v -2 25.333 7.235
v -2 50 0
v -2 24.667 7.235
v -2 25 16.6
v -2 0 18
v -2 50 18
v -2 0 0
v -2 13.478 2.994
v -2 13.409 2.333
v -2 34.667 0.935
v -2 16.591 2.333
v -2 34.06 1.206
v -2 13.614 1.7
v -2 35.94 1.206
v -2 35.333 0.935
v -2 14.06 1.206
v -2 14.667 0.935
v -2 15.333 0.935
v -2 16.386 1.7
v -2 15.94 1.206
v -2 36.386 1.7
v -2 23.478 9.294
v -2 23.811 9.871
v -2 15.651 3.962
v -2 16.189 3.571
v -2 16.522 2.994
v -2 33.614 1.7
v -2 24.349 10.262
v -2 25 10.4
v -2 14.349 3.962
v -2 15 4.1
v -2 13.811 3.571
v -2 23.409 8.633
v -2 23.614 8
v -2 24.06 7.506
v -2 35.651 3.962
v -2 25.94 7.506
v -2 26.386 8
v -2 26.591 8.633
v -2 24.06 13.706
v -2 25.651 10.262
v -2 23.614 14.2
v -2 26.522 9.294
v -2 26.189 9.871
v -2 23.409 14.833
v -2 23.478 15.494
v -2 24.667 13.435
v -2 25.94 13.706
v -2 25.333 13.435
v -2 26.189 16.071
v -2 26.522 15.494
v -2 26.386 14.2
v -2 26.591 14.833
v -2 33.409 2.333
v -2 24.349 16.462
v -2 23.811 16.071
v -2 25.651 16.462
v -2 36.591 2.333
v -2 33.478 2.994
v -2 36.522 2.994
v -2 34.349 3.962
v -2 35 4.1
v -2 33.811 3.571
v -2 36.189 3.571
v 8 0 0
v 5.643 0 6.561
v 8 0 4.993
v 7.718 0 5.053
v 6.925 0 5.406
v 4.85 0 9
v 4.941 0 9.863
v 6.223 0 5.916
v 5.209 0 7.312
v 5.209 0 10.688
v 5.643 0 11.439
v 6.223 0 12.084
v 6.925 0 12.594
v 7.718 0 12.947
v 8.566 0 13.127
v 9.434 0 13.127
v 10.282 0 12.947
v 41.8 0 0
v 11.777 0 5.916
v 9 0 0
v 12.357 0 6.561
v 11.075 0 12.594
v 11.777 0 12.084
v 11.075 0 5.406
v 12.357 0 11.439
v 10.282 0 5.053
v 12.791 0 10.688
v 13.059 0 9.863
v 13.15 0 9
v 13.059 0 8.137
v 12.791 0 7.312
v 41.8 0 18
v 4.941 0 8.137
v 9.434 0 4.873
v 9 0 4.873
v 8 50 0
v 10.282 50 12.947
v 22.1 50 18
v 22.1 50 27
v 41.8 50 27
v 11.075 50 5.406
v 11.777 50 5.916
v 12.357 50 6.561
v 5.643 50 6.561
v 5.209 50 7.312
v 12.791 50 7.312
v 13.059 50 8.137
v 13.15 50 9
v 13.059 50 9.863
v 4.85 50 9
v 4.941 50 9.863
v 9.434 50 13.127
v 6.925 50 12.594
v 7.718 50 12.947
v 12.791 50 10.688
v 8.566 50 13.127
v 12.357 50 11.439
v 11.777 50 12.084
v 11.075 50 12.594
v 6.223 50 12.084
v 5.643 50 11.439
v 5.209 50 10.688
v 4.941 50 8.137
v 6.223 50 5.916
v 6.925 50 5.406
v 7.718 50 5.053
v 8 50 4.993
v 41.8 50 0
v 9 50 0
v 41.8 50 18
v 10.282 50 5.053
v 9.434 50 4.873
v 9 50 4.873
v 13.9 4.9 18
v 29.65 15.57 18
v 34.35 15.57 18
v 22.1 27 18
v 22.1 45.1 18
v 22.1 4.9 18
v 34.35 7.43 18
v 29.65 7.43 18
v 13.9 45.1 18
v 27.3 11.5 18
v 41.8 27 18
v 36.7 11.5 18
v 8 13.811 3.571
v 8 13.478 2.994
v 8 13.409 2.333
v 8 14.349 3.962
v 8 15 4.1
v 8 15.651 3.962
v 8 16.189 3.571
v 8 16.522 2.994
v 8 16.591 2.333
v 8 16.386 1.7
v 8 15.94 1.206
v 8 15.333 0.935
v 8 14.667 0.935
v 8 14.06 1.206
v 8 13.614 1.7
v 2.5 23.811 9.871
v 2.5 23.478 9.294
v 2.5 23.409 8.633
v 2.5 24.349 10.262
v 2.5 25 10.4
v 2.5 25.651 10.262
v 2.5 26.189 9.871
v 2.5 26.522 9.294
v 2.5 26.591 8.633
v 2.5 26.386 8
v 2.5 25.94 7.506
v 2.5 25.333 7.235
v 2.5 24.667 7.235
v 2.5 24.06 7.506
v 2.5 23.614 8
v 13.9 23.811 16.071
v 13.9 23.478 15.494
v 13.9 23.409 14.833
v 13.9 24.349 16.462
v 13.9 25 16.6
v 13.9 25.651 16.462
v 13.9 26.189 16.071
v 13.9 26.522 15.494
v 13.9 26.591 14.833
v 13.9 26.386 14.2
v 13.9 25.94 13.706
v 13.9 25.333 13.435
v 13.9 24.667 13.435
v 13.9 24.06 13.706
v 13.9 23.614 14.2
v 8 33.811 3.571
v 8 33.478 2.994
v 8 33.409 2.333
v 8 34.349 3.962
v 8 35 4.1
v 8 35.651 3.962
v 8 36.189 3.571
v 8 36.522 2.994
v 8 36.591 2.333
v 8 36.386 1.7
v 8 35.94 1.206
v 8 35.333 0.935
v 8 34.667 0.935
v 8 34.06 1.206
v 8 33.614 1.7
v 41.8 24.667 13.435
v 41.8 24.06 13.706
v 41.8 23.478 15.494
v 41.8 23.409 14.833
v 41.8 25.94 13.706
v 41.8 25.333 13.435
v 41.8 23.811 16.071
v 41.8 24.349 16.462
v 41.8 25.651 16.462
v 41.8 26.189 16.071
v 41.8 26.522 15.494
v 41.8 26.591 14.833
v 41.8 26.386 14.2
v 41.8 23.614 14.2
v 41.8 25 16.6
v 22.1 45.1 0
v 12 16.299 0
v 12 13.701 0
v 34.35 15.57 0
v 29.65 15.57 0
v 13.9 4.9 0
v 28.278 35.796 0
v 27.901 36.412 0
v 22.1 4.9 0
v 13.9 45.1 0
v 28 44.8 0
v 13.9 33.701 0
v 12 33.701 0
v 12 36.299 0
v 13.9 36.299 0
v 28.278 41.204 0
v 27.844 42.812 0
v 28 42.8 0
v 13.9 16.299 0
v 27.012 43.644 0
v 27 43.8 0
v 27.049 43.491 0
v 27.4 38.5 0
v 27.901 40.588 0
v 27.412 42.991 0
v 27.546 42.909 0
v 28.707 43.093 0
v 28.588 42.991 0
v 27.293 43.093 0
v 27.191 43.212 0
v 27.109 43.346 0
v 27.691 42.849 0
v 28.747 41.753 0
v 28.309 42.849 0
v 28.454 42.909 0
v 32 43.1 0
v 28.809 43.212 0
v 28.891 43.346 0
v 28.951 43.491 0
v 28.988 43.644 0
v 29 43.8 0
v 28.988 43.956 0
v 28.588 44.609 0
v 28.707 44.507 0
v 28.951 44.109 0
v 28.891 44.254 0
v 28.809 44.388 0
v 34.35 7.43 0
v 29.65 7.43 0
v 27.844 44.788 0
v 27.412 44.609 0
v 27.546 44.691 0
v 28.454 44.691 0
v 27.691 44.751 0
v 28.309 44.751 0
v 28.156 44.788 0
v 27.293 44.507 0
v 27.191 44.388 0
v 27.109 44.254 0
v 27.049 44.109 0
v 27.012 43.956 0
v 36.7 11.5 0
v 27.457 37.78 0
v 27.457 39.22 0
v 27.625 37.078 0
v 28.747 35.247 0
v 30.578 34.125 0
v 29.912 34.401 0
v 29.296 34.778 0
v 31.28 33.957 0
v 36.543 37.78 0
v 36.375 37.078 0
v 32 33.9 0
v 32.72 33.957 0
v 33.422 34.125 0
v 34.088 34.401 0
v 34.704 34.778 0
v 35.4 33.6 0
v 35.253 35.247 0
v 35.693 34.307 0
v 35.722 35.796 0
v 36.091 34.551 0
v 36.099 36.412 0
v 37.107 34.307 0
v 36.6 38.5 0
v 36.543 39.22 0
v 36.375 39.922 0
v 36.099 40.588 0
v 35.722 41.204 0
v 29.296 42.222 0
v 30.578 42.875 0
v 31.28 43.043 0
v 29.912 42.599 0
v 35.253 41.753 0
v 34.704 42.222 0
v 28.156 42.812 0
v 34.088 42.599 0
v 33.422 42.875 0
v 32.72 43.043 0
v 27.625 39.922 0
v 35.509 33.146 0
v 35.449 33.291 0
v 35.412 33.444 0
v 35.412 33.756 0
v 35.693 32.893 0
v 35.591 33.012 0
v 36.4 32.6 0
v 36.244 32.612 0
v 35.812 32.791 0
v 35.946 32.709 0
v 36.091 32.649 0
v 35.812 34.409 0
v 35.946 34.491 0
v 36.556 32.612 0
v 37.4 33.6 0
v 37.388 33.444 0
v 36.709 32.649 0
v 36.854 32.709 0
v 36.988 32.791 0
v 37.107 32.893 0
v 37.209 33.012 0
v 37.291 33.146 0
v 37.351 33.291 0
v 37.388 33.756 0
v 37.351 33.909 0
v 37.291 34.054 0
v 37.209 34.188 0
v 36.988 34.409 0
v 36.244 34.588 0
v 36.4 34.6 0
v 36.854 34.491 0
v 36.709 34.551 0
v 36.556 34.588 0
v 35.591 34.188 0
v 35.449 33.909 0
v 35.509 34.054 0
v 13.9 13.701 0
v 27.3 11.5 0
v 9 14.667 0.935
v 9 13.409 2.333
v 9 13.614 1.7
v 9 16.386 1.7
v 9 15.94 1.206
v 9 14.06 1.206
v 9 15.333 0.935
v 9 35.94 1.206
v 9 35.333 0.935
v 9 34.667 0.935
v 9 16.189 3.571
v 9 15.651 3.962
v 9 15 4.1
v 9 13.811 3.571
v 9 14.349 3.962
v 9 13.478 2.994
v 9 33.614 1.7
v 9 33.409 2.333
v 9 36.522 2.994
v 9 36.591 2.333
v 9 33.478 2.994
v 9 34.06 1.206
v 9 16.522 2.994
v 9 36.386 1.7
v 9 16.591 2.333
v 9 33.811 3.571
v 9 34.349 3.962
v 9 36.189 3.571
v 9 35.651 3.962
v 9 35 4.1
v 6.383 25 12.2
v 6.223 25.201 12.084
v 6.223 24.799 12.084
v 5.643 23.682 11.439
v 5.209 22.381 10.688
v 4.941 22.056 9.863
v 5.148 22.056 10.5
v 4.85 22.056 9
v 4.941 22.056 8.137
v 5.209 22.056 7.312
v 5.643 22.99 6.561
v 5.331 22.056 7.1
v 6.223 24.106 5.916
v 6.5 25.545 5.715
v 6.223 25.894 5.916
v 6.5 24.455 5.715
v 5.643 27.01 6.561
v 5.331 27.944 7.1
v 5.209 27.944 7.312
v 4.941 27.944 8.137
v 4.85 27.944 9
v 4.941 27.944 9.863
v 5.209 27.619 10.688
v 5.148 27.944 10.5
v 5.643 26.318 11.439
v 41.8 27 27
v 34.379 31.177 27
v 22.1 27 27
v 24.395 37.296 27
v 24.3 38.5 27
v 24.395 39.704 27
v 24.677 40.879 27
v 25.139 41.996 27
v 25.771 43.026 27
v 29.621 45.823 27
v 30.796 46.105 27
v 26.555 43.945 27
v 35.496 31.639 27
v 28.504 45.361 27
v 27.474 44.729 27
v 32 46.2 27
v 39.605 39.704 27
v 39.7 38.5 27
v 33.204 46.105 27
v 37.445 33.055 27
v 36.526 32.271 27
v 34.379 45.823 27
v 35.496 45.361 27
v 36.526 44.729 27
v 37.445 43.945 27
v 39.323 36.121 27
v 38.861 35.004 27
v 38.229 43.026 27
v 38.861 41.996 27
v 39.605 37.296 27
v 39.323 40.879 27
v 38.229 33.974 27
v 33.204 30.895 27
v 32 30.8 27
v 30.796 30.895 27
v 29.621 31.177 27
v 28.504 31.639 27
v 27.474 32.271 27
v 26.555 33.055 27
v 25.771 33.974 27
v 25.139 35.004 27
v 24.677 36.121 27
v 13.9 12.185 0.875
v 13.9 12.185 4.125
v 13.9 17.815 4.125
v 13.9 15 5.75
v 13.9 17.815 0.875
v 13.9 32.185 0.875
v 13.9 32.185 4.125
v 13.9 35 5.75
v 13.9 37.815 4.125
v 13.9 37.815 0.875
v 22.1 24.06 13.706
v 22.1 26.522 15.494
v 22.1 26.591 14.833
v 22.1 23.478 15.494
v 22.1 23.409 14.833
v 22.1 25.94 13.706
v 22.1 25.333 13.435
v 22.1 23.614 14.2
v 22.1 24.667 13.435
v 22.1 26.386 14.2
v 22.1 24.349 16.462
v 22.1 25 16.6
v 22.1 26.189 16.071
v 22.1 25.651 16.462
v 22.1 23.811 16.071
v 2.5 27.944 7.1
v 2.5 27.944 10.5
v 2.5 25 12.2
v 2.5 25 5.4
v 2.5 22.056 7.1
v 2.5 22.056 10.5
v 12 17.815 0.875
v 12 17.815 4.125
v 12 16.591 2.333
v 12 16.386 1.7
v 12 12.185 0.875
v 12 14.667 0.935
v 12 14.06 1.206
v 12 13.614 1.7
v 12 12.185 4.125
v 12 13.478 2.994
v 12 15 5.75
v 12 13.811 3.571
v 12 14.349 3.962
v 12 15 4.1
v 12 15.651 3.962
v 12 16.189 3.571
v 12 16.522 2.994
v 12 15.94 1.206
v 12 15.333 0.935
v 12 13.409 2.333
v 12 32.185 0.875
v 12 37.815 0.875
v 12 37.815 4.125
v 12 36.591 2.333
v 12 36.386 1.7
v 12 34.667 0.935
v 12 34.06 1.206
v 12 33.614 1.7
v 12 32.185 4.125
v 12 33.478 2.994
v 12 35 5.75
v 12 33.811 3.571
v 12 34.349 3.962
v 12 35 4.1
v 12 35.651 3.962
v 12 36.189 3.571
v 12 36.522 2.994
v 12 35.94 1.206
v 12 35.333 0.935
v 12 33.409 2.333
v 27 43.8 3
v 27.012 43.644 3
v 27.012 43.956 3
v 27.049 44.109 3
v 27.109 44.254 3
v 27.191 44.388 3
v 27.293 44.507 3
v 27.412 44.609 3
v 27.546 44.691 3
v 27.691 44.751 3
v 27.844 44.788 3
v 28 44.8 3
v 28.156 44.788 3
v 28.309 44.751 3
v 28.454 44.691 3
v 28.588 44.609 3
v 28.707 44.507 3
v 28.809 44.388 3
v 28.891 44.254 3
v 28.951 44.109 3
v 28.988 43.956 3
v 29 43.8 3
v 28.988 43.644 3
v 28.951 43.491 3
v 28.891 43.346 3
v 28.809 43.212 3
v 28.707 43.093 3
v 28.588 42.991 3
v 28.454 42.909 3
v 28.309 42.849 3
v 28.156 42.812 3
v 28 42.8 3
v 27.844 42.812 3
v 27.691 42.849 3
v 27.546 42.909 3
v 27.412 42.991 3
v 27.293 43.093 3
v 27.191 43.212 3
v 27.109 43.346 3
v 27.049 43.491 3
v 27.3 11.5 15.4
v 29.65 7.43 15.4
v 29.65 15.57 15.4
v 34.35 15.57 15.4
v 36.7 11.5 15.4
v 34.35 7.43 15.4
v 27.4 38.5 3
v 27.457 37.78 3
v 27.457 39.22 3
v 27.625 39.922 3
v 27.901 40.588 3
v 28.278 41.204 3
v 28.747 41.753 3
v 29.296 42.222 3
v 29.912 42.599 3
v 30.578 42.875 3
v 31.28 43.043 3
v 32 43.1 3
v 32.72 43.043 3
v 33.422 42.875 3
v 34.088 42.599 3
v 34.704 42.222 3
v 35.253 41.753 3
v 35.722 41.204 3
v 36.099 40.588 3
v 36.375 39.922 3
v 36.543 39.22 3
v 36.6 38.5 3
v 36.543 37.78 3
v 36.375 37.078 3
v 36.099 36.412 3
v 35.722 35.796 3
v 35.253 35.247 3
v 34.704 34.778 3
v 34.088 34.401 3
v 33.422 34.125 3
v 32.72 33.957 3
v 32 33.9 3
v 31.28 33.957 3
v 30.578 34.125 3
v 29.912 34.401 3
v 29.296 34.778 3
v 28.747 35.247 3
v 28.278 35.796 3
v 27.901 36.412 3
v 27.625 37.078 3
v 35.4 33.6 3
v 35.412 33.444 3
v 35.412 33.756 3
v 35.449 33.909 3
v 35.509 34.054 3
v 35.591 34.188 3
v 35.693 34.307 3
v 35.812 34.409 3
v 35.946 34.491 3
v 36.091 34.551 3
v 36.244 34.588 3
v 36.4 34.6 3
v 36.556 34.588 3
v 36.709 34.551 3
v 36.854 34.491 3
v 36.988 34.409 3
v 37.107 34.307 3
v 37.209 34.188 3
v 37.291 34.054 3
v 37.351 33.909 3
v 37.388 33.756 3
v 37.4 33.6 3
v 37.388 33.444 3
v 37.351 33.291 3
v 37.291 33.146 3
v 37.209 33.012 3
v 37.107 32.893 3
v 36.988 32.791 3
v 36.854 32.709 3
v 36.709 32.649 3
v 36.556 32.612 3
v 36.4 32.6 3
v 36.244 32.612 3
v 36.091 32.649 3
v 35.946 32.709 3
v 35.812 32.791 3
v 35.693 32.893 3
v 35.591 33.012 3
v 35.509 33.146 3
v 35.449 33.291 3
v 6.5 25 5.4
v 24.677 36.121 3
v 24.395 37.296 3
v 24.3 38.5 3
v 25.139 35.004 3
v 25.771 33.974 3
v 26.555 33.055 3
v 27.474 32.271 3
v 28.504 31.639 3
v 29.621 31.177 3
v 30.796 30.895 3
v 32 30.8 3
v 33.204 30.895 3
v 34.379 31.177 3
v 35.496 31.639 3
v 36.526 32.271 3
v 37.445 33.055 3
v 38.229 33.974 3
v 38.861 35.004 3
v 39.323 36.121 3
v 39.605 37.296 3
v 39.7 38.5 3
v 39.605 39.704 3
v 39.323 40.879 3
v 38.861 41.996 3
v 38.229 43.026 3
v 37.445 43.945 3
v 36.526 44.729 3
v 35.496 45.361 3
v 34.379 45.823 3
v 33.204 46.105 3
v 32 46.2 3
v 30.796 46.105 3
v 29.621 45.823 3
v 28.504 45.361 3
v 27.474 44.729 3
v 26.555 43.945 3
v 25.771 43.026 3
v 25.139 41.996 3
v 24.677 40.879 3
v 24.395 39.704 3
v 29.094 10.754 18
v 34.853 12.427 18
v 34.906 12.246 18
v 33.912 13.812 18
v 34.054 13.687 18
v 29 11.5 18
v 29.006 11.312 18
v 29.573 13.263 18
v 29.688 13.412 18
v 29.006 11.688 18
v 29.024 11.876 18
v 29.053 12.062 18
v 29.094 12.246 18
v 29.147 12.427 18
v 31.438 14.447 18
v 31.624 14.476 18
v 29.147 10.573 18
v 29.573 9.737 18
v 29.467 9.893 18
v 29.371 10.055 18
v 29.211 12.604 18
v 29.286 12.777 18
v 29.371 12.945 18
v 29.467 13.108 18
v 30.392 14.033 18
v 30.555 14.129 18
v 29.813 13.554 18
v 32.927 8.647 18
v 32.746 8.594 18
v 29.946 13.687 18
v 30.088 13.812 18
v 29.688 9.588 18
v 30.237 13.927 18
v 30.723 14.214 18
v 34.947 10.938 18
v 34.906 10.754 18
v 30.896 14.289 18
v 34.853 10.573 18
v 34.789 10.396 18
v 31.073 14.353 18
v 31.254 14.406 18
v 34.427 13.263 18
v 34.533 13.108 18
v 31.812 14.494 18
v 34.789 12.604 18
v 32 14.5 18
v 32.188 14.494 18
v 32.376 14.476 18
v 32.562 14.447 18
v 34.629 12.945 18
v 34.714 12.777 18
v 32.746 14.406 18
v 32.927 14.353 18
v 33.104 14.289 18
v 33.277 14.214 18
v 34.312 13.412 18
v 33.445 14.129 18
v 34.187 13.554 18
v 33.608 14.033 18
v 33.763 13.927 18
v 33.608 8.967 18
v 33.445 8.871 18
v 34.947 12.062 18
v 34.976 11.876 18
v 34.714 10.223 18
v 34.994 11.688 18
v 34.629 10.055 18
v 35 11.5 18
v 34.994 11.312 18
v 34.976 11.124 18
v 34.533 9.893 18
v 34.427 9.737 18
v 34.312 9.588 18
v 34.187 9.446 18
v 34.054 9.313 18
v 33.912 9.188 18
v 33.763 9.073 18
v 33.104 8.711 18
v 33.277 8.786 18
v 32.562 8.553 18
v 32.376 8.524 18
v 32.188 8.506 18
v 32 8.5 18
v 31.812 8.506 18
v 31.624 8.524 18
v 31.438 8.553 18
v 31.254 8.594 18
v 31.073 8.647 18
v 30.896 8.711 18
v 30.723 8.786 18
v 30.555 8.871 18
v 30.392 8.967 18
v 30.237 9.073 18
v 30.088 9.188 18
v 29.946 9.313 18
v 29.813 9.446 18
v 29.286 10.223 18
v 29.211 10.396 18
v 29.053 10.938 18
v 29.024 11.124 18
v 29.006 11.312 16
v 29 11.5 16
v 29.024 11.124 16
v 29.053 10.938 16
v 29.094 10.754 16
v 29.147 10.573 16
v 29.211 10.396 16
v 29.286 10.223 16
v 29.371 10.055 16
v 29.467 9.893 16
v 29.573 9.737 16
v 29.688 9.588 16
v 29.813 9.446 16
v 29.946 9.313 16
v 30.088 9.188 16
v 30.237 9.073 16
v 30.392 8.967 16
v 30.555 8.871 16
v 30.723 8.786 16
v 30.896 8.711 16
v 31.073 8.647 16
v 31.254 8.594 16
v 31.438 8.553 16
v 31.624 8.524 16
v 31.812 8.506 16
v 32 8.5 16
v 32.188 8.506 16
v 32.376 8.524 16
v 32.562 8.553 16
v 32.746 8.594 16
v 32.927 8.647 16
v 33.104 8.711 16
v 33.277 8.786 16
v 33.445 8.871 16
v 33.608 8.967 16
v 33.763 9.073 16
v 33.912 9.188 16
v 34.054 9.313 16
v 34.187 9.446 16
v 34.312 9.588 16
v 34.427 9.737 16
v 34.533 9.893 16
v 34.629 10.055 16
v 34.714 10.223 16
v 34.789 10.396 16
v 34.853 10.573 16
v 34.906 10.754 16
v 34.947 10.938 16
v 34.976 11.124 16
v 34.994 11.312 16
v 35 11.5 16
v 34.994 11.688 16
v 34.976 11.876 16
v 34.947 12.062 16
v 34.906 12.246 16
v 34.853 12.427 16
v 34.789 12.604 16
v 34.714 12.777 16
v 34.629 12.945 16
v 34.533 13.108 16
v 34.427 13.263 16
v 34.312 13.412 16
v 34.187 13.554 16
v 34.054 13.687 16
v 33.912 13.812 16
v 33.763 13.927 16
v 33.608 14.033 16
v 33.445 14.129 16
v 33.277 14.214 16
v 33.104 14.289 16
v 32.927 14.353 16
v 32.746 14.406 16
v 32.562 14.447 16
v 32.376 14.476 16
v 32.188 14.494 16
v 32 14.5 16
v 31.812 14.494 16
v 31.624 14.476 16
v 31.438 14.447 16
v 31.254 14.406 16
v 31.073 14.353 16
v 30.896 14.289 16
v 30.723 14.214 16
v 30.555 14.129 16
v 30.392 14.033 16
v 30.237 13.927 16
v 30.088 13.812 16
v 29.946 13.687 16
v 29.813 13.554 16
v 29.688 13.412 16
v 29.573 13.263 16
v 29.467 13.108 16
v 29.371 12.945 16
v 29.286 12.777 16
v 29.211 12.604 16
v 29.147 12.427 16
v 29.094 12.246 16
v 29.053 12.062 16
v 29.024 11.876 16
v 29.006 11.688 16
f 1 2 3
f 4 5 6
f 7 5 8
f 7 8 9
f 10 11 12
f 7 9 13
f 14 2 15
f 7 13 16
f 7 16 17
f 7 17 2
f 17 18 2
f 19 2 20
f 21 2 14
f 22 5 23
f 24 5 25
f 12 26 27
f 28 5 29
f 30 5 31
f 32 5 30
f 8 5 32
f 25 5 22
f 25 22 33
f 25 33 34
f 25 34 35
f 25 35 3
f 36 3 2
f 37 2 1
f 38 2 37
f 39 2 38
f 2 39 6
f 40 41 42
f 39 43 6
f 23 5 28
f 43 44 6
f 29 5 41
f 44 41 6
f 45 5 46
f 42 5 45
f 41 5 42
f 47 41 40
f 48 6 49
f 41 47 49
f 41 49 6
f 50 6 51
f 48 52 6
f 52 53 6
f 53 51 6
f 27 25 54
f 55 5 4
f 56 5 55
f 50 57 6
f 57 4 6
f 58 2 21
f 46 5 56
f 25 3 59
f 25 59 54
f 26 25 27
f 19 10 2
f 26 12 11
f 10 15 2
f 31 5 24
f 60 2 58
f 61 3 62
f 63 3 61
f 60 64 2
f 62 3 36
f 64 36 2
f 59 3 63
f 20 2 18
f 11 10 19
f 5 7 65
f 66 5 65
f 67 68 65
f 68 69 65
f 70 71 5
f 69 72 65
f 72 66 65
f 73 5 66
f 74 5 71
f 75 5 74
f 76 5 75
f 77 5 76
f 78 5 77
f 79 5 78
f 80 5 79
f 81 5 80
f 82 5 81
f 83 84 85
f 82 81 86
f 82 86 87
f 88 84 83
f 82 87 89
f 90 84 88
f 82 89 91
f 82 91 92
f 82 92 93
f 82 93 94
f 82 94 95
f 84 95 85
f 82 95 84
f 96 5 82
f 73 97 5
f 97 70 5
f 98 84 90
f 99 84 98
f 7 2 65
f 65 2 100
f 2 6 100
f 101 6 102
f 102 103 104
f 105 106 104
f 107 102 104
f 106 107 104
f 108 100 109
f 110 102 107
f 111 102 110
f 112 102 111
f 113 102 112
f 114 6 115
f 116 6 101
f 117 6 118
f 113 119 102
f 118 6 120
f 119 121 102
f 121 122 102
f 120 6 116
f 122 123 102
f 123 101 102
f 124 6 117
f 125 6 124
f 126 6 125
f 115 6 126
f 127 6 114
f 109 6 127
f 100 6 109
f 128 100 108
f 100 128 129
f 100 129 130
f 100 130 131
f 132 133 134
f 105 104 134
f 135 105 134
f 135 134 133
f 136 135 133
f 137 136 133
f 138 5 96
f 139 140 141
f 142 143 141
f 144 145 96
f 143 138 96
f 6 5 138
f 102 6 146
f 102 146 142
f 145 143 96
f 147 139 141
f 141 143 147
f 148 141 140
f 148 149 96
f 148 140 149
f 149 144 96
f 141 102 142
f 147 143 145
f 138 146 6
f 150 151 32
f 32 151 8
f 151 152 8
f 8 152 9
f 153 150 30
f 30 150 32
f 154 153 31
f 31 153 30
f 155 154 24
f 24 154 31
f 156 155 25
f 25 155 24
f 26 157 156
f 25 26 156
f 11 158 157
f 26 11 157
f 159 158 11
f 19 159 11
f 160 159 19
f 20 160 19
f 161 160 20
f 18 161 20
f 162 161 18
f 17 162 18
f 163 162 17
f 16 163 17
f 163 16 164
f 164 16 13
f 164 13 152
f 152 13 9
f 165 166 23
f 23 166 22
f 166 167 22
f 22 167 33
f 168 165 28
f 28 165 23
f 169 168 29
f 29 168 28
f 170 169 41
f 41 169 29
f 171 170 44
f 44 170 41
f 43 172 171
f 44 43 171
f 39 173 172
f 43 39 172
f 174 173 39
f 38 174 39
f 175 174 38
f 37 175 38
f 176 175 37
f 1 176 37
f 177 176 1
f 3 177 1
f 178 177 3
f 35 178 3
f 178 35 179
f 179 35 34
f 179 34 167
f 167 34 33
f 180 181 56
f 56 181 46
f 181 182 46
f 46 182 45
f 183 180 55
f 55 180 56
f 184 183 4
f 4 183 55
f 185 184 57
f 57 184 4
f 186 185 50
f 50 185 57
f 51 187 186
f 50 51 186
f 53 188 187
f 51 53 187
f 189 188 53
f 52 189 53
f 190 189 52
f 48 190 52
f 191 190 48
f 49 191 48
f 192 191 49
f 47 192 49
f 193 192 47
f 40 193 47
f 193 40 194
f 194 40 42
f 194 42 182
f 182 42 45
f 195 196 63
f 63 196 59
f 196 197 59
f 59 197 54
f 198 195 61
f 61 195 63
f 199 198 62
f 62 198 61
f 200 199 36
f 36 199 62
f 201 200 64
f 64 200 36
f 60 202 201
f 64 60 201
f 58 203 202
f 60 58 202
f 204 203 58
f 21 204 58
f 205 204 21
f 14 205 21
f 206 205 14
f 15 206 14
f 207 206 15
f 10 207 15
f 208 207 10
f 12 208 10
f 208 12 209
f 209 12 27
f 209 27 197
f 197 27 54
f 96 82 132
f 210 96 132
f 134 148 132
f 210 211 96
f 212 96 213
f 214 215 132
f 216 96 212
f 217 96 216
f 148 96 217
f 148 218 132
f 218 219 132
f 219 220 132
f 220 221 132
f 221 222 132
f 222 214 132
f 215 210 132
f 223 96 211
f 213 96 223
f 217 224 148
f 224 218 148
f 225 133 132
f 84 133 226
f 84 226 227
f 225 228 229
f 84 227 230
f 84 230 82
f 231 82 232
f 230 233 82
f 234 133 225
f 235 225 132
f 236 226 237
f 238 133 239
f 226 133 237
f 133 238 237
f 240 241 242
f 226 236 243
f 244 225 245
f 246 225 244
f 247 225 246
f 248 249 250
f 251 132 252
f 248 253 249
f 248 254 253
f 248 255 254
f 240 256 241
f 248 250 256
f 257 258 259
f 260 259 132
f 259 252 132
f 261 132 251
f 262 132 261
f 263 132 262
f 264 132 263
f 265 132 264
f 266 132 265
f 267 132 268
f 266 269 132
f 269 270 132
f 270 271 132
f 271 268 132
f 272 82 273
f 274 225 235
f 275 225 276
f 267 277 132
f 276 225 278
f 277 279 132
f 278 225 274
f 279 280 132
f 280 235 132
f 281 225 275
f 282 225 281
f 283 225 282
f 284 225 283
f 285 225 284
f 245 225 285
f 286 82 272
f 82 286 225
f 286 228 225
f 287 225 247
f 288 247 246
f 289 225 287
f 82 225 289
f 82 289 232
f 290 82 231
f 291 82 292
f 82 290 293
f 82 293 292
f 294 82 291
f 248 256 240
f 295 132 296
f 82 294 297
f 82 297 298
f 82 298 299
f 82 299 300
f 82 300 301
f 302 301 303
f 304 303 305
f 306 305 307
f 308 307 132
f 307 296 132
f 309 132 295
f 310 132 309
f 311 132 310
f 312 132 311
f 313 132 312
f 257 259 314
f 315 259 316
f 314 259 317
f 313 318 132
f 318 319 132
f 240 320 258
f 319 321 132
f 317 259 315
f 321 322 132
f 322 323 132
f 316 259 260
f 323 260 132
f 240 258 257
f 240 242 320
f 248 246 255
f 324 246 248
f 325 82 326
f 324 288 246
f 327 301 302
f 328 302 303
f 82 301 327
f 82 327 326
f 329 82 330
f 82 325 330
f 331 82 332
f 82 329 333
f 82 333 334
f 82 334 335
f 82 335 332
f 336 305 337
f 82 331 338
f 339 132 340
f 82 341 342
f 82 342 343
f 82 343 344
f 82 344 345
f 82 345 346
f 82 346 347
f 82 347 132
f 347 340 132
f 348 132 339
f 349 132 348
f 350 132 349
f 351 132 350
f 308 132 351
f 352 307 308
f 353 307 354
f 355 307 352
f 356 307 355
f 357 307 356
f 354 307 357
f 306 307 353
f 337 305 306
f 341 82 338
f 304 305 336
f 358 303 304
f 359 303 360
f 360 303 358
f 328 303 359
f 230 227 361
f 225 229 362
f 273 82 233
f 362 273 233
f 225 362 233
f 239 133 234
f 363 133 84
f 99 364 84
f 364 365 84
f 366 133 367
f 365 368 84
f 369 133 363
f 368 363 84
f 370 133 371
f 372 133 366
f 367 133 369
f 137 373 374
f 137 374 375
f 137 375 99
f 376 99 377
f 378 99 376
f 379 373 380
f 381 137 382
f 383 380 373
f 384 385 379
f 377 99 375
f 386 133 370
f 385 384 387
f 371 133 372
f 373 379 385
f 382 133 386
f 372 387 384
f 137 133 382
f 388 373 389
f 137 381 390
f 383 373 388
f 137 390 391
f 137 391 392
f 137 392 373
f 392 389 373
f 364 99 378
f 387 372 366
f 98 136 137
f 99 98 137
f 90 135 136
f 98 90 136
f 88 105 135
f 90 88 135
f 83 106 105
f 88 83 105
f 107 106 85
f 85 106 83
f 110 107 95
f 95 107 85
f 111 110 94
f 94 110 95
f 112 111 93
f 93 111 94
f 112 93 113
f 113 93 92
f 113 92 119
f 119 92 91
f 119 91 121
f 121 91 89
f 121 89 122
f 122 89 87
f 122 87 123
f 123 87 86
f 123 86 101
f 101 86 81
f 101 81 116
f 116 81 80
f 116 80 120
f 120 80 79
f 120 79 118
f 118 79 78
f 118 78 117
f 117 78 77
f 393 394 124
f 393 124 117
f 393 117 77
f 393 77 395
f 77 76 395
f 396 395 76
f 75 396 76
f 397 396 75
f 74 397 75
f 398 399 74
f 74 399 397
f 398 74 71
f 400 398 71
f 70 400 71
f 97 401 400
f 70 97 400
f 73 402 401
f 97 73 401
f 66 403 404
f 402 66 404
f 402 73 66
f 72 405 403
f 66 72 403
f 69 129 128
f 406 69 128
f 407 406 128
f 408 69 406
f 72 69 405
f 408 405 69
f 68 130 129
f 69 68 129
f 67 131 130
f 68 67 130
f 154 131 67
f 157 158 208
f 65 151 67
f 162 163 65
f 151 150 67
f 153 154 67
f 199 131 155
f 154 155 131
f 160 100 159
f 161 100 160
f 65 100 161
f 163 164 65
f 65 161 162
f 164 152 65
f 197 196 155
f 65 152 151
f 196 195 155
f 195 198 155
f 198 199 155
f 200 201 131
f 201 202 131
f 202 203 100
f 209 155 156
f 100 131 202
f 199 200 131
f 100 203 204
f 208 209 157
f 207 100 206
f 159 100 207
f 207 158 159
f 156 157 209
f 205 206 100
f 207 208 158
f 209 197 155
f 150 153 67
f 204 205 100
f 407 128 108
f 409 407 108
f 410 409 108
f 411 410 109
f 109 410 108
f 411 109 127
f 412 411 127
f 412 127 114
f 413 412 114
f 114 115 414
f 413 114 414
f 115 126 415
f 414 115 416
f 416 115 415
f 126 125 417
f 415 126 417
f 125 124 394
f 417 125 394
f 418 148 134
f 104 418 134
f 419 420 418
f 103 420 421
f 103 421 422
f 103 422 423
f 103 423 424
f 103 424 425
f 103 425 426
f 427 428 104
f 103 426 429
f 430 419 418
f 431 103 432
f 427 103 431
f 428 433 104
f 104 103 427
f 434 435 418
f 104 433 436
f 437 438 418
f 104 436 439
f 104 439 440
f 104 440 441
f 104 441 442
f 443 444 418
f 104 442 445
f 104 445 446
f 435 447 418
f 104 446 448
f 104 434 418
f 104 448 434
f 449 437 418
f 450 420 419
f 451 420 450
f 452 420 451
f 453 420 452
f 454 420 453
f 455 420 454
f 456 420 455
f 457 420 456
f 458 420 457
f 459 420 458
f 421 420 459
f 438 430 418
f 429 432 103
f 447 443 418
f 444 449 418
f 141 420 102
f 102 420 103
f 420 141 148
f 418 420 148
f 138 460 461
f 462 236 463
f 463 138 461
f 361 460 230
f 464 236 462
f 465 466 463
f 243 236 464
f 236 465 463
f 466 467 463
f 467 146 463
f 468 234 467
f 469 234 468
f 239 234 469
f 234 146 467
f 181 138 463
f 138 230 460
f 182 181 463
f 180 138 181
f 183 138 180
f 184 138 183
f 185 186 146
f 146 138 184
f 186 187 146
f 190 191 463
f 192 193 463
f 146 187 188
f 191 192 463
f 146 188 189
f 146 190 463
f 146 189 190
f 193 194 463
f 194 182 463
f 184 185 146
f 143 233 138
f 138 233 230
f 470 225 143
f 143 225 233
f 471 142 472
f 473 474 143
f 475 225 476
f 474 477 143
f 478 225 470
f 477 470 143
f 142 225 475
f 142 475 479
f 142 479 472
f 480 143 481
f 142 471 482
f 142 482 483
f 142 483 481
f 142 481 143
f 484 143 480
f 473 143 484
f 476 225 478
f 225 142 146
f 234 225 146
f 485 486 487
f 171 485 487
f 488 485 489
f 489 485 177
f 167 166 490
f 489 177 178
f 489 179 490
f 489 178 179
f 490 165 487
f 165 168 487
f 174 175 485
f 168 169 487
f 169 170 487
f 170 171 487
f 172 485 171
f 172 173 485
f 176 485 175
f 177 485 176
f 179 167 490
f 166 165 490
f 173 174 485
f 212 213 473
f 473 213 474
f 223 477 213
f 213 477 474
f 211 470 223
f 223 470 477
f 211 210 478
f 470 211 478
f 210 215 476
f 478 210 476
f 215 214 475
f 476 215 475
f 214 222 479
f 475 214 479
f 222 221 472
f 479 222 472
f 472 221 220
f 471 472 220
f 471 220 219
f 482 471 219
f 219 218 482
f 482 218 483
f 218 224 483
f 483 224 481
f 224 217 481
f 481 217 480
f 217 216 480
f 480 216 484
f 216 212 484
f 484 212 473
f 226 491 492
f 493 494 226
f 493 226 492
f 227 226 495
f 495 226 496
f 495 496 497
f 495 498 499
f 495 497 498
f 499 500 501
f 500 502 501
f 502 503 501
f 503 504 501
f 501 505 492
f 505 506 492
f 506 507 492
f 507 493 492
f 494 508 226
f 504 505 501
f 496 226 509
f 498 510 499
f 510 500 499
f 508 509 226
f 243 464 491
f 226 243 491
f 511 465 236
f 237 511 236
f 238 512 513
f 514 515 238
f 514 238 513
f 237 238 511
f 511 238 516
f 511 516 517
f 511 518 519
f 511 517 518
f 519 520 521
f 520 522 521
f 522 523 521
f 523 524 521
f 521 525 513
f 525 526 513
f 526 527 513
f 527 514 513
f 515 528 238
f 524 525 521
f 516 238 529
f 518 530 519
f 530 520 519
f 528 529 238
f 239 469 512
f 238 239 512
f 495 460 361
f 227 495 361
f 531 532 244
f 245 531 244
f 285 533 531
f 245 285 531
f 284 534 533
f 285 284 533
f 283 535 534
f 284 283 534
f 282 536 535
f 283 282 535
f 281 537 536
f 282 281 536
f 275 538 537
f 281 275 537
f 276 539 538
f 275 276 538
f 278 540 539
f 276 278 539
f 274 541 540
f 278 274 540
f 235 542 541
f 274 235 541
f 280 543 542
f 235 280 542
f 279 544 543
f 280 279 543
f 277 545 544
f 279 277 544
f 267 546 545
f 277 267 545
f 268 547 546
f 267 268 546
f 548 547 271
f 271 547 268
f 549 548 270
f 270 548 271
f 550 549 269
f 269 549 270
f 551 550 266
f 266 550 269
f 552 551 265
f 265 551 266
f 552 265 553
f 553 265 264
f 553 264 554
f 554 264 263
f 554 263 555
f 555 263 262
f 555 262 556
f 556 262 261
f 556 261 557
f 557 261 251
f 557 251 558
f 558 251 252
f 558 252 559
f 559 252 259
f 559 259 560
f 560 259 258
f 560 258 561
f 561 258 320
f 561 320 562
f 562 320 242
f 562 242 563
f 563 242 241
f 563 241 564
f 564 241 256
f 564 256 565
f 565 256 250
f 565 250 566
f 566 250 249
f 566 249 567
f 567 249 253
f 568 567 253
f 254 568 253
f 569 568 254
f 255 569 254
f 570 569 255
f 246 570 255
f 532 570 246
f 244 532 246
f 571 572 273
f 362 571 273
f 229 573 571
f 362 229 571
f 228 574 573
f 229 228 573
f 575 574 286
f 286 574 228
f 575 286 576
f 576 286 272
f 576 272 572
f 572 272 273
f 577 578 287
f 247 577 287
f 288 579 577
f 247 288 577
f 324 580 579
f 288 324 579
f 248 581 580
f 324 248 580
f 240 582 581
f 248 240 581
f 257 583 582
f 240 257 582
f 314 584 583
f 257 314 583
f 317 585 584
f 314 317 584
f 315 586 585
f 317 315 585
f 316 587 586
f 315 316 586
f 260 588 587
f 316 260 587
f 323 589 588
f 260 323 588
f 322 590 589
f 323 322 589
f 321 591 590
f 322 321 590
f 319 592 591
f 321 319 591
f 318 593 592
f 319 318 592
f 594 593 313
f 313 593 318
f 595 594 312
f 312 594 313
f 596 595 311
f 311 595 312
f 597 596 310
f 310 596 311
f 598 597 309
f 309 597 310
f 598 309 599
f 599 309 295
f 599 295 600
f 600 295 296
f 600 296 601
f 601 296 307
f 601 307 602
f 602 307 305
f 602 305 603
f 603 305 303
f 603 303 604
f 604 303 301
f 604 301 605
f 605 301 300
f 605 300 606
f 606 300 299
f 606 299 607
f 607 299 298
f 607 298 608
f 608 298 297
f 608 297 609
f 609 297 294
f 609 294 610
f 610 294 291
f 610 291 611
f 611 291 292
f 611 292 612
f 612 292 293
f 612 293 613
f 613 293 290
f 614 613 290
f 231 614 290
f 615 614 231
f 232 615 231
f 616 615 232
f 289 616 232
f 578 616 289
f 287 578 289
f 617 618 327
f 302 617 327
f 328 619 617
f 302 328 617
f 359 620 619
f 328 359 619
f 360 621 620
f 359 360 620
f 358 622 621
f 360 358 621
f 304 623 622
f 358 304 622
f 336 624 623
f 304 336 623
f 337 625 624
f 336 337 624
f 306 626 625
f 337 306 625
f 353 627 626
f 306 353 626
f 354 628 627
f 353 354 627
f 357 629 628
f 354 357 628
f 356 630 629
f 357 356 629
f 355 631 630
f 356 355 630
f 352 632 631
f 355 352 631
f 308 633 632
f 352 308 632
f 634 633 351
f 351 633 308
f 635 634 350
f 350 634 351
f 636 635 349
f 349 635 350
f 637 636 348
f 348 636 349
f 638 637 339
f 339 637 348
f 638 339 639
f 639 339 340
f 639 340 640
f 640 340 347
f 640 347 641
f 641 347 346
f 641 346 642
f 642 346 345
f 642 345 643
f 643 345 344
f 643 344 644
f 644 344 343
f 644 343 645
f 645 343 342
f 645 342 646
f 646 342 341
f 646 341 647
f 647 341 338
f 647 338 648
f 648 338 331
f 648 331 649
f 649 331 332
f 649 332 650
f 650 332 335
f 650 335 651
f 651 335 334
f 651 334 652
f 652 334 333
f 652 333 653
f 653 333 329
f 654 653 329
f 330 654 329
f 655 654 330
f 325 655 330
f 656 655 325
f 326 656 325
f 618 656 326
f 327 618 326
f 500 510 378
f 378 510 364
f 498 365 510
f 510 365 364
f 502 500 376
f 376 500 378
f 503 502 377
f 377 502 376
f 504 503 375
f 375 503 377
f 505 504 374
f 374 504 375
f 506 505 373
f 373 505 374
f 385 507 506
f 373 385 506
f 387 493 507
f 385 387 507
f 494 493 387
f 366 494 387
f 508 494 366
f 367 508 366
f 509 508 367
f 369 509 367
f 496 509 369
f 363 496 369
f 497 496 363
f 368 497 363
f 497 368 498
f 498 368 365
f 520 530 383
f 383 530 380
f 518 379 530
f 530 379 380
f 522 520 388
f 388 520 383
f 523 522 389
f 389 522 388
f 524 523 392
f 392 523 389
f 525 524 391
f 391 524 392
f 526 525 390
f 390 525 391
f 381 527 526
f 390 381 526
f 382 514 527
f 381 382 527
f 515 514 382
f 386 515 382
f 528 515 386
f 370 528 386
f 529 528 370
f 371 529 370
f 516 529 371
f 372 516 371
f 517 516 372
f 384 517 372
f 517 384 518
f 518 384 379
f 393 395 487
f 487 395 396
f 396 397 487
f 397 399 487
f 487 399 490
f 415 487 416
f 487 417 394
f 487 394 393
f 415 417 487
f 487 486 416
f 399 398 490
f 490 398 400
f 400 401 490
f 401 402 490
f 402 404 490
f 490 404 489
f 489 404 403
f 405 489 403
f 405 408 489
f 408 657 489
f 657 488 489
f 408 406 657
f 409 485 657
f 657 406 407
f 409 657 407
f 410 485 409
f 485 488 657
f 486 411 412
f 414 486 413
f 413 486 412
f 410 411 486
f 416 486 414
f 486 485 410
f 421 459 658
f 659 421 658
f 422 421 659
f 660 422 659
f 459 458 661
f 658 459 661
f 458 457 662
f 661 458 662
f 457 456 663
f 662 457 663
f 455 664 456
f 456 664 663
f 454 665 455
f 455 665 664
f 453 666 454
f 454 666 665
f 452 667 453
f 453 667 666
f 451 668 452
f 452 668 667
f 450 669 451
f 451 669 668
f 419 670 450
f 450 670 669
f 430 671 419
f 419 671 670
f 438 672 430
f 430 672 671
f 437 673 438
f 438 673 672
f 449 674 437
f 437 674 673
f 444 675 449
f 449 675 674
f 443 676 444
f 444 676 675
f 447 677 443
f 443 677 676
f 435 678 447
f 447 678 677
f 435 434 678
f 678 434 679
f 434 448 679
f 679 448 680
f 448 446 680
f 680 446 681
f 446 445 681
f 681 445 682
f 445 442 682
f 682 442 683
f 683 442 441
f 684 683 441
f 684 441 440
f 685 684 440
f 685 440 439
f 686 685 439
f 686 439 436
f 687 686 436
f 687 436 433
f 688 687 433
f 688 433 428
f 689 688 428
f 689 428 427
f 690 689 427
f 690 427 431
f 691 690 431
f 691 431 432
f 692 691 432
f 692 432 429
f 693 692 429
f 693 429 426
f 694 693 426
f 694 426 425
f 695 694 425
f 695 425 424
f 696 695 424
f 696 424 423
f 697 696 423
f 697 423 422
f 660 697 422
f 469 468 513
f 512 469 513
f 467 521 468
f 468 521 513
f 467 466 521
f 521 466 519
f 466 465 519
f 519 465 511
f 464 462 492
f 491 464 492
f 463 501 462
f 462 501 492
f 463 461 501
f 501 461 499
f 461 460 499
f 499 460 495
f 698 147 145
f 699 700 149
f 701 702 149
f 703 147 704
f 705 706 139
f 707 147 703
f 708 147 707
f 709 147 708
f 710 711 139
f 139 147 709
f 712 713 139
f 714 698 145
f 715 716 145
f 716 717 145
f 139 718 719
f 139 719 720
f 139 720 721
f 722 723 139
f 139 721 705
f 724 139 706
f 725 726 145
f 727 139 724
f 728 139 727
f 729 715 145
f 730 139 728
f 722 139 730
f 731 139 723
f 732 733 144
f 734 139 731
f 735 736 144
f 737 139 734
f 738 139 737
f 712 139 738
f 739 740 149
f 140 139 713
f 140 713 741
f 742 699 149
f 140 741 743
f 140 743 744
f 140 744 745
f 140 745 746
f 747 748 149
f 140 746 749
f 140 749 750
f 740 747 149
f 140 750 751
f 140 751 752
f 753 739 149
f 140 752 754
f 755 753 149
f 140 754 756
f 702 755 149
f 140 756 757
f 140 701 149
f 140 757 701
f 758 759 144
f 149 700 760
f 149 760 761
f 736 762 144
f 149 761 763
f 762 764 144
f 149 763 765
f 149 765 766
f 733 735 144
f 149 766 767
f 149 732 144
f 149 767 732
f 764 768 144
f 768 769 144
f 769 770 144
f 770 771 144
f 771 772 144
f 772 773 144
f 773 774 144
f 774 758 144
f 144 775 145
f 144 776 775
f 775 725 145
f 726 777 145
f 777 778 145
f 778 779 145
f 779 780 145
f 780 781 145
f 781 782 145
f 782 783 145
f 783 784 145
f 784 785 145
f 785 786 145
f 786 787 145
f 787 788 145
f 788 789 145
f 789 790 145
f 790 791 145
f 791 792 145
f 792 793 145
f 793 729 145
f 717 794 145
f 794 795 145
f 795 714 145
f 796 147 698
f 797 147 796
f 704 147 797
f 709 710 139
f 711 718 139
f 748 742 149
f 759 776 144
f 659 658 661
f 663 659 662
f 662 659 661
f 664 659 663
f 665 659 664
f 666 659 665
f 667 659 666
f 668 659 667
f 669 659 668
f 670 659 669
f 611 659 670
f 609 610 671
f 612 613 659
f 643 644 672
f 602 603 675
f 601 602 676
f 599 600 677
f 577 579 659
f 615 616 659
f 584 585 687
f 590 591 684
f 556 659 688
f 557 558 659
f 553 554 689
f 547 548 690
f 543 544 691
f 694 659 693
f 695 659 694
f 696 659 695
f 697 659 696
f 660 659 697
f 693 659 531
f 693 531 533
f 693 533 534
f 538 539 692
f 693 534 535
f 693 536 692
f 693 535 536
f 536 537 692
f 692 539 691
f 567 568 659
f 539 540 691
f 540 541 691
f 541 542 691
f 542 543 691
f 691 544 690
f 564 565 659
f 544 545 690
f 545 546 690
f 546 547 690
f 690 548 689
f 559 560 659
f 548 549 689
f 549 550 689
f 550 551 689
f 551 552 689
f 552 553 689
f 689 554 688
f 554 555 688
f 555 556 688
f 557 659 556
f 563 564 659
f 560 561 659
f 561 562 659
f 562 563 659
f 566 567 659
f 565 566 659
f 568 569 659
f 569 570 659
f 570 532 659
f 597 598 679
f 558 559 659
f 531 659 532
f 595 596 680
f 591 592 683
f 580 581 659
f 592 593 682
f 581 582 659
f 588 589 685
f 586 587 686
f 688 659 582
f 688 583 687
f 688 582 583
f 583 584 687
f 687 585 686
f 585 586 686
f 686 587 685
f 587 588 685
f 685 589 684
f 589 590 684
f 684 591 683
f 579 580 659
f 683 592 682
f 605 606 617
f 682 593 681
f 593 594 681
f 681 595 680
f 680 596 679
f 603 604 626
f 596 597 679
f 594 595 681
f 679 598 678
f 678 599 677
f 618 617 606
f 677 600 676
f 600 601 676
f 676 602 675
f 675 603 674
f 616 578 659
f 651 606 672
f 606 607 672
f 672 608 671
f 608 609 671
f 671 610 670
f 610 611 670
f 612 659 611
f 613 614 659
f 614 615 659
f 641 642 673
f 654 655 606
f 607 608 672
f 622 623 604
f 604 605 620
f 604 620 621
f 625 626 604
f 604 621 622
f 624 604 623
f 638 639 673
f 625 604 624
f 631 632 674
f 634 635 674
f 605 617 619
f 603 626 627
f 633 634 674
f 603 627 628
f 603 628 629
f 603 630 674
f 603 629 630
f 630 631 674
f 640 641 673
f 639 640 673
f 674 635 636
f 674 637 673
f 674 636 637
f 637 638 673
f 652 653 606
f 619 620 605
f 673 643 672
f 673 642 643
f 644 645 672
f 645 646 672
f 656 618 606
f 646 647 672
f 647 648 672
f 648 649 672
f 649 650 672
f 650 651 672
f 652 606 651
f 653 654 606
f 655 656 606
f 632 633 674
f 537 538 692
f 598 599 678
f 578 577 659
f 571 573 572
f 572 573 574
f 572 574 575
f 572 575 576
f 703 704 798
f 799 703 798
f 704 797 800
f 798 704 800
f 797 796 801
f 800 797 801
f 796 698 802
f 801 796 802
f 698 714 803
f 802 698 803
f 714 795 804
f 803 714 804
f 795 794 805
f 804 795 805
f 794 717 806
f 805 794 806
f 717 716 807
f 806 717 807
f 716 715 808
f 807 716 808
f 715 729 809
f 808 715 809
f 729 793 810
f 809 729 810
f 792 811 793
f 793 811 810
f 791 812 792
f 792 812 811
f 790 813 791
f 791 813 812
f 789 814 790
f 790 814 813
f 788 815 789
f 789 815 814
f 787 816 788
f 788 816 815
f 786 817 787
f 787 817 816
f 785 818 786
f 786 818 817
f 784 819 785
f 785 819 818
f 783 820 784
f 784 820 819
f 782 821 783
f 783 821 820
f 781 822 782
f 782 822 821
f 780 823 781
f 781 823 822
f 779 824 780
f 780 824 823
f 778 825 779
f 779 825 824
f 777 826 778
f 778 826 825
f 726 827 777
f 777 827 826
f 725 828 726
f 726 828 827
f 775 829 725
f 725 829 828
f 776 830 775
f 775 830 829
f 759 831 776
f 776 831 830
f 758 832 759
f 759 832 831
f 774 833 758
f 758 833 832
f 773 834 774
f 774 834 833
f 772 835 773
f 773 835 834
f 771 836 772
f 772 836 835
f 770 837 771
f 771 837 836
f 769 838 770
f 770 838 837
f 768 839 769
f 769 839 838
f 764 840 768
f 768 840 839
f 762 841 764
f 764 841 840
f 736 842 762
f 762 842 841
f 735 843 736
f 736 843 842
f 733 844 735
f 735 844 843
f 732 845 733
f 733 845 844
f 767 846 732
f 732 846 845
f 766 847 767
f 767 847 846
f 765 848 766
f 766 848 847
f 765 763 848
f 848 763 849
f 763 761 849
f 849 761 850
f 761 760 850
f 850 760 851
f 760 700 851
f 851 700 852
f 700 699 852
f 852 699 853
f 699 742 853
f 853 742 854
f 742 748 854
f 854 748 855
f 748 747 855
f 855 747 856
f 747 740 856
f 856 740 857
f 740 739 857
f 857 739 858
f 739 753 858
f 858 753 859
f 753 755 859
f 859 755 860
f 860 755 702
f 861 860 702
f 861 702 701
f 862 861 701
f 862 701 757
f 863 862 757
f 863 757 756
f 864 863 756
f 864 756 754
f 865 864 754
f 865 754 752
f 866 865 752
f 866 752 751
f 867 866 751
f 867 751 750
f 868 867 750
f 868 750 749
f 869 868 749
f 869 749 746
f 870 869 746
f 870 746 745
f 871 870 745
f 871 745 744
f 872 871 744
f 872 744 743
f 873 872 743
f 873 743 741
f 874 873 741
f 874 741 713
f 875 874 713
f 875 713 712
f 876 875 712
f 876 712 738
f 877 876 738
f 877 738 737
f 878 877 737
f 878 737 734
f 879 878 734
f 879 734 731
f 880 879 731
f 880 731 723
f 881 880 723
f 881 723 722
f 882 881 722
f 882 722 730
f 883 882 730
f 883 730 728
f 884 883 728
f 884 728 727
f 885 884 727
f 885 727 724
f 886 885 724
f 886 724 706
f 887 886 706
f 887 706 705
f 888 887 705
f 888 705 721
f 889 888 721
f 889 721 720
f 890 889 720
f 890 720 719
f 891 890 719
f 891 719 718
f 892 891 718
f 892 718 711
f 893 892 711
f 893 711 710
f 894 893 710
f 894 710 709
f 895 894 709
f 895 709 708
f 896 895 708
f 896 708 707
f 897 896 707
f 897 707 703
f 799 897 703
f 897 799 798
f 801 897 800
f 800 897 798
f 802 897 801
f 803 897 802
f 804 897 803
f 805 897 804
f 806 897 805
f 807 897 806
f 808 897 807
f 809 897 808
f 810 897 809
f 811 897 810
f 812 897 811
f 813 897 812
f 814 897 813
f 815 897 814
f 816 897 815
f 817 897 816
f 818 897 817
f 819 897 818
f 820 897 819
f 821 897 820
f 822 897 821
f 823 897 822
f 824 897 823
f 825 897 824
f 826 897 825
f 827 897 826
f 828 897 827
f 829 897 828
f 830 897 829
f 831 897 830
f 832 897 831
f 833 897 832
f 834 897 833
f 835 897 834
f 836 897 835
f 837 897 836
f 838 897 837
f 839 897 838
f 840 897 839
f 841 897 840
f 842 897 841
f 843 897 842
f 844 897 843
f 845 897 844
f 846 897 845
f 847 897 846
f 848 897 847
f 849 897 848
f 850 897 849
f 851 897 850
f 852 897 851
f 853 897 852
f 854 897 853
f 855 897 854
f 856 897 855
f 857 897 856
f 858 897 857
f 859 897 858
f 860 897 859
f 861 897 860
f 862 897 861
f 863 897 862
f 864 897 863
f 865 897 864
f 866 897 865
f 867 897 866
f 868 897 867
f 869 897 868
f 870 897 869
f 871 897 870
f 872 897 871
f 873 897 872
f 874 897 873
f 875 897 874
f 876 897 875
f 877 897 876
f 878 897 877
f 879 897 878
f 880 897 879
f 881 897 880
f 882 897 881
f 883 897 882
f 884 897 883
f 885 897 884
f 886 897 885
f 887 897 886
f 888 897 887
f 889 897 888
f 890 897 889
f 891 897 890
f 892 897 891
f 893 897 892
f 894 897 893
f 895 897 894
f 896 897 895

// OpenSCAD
module BIGblock() {

module block() {

M3 = 3.2/2;

difference() {

union() {
	translate([-2,0,0]) cube([43.8,50,18]);
	translate([-2,10,0])	cube([2,30,18]);
// шапка над подшипником
	translate ([22.1,0,-9]) cube([19.7,23,9]);
}

//	translate([-10,-10,-40])cube([100,100,50]);
//	translate([-10,-10,13])cube([100,100,50]);
//	translate([-78,-10,-20])cube([100,100,50]);

// вырез под оргстекло
//	translate([13.9,5,-1])cube([8.2,40,23]); - не входит
	translate([13.9,4.9,-1])cube([8.2,40.2,23]);

// линейный подшипник 24 * 15 * 8
	translate([32,11.5,-1]) cylinder(20,r=9.2/2,$fn=40);

//translate([32,11,-4]) cylinder(26,r=15.4/2,$fn=40); // для инверсии входа подшипника
	translate([32,11.5,-11]) cylinder(26,r=15.4/2,$fn=40);

	// Отверстия для извлечения подшипников
	translate([28,6.2,5]) rotate([0,0,0]) cylinder(20,r=1,$fn=40);
	translate([36.4,16.4,5]) rotate([0,0,0]) cylinder(20,r=1,$fn=40);

	// гайка  M5
//#	translate([32,39,-1])cylinder(6.4,r=4.7,$fn=40);
//#	translate([32,39,10])cylinder(9,r=4.7,$fn=40);
//#	translate([35,32.4,-1])cube([6,13.2,20]);
	translate ([32,38.5,-1]) cylinder(20,r=9.4/2,$fa=60);


	// направляющая - слабо держит
//	translate([9,-1,9])rotate([-90,0,0])cylinder(52,r=8.4/2,$fn=30);
	// направляющая - меньше диаметр отверстия
#	translate([9,-1,9])rotate([-90,0,0])cylinder(52,r=8.3/2,$fn=30);
	// вырезы у направляющей
//	translate([-1,50,-1])cube([10,20,20]);
//	translate([-1,-1,-1])cube([10,11,20]);
	translate([8,-1,8])cube([1,52,11]);

	// отверстие 1
	translate([-5,15,15.5])rotate([0,90,0])cylinder(20,r=M3,$fn=15);
	translate([12,15,15.5])rotate([0,90,0])cylinder(5,r=6.5/2,$fa=60);

	// отверстие 2
	translate([0,35,0]) {
		translate([-5,0,15.5])rotate([0,90,0])cylinder(20,r=M3,$fn=15);
	translate([12,0,15.5])rotate([0,90,0])cylinder(5,r=6.5/2,$fa=60);
	}
	// отверстие 3 в прижиме
	translate([-9.5,10,-6.6]) {
		translate([-5,15,15.8])rotate([0,90,0])cylinder(20,r=M3,$fn=15);
	translate([12,15,15.8])rotate([0,90,0])cylinder(4,r=6.8/2,$fa=60);
	}
	// сквозное отверстие в детали
		translate([-14.5,25,3])rotate([0,90,0])cylinder(60,r=M3,$fn=15);
}
}

// шапка над гайкой, отверстие в ней
		difference() {
	translate ([23,0,16]) cube([18,20,2]);
	translate ([32,11.5,10]) cylinder(10,r=6/2,$fn=100);
}
	translate ([23,0,15.4]) cube([18,20,0.6]);

// мост над трубкой - не нужен при верной ориентации прохода втулки
//	translate ([24,30.5,13.5]) cube([16,16,0.5]);

translate([0,50,18])
rotate([180,0,0])
block();
}

// не выводим итоговый результат //
 BIGblock();
